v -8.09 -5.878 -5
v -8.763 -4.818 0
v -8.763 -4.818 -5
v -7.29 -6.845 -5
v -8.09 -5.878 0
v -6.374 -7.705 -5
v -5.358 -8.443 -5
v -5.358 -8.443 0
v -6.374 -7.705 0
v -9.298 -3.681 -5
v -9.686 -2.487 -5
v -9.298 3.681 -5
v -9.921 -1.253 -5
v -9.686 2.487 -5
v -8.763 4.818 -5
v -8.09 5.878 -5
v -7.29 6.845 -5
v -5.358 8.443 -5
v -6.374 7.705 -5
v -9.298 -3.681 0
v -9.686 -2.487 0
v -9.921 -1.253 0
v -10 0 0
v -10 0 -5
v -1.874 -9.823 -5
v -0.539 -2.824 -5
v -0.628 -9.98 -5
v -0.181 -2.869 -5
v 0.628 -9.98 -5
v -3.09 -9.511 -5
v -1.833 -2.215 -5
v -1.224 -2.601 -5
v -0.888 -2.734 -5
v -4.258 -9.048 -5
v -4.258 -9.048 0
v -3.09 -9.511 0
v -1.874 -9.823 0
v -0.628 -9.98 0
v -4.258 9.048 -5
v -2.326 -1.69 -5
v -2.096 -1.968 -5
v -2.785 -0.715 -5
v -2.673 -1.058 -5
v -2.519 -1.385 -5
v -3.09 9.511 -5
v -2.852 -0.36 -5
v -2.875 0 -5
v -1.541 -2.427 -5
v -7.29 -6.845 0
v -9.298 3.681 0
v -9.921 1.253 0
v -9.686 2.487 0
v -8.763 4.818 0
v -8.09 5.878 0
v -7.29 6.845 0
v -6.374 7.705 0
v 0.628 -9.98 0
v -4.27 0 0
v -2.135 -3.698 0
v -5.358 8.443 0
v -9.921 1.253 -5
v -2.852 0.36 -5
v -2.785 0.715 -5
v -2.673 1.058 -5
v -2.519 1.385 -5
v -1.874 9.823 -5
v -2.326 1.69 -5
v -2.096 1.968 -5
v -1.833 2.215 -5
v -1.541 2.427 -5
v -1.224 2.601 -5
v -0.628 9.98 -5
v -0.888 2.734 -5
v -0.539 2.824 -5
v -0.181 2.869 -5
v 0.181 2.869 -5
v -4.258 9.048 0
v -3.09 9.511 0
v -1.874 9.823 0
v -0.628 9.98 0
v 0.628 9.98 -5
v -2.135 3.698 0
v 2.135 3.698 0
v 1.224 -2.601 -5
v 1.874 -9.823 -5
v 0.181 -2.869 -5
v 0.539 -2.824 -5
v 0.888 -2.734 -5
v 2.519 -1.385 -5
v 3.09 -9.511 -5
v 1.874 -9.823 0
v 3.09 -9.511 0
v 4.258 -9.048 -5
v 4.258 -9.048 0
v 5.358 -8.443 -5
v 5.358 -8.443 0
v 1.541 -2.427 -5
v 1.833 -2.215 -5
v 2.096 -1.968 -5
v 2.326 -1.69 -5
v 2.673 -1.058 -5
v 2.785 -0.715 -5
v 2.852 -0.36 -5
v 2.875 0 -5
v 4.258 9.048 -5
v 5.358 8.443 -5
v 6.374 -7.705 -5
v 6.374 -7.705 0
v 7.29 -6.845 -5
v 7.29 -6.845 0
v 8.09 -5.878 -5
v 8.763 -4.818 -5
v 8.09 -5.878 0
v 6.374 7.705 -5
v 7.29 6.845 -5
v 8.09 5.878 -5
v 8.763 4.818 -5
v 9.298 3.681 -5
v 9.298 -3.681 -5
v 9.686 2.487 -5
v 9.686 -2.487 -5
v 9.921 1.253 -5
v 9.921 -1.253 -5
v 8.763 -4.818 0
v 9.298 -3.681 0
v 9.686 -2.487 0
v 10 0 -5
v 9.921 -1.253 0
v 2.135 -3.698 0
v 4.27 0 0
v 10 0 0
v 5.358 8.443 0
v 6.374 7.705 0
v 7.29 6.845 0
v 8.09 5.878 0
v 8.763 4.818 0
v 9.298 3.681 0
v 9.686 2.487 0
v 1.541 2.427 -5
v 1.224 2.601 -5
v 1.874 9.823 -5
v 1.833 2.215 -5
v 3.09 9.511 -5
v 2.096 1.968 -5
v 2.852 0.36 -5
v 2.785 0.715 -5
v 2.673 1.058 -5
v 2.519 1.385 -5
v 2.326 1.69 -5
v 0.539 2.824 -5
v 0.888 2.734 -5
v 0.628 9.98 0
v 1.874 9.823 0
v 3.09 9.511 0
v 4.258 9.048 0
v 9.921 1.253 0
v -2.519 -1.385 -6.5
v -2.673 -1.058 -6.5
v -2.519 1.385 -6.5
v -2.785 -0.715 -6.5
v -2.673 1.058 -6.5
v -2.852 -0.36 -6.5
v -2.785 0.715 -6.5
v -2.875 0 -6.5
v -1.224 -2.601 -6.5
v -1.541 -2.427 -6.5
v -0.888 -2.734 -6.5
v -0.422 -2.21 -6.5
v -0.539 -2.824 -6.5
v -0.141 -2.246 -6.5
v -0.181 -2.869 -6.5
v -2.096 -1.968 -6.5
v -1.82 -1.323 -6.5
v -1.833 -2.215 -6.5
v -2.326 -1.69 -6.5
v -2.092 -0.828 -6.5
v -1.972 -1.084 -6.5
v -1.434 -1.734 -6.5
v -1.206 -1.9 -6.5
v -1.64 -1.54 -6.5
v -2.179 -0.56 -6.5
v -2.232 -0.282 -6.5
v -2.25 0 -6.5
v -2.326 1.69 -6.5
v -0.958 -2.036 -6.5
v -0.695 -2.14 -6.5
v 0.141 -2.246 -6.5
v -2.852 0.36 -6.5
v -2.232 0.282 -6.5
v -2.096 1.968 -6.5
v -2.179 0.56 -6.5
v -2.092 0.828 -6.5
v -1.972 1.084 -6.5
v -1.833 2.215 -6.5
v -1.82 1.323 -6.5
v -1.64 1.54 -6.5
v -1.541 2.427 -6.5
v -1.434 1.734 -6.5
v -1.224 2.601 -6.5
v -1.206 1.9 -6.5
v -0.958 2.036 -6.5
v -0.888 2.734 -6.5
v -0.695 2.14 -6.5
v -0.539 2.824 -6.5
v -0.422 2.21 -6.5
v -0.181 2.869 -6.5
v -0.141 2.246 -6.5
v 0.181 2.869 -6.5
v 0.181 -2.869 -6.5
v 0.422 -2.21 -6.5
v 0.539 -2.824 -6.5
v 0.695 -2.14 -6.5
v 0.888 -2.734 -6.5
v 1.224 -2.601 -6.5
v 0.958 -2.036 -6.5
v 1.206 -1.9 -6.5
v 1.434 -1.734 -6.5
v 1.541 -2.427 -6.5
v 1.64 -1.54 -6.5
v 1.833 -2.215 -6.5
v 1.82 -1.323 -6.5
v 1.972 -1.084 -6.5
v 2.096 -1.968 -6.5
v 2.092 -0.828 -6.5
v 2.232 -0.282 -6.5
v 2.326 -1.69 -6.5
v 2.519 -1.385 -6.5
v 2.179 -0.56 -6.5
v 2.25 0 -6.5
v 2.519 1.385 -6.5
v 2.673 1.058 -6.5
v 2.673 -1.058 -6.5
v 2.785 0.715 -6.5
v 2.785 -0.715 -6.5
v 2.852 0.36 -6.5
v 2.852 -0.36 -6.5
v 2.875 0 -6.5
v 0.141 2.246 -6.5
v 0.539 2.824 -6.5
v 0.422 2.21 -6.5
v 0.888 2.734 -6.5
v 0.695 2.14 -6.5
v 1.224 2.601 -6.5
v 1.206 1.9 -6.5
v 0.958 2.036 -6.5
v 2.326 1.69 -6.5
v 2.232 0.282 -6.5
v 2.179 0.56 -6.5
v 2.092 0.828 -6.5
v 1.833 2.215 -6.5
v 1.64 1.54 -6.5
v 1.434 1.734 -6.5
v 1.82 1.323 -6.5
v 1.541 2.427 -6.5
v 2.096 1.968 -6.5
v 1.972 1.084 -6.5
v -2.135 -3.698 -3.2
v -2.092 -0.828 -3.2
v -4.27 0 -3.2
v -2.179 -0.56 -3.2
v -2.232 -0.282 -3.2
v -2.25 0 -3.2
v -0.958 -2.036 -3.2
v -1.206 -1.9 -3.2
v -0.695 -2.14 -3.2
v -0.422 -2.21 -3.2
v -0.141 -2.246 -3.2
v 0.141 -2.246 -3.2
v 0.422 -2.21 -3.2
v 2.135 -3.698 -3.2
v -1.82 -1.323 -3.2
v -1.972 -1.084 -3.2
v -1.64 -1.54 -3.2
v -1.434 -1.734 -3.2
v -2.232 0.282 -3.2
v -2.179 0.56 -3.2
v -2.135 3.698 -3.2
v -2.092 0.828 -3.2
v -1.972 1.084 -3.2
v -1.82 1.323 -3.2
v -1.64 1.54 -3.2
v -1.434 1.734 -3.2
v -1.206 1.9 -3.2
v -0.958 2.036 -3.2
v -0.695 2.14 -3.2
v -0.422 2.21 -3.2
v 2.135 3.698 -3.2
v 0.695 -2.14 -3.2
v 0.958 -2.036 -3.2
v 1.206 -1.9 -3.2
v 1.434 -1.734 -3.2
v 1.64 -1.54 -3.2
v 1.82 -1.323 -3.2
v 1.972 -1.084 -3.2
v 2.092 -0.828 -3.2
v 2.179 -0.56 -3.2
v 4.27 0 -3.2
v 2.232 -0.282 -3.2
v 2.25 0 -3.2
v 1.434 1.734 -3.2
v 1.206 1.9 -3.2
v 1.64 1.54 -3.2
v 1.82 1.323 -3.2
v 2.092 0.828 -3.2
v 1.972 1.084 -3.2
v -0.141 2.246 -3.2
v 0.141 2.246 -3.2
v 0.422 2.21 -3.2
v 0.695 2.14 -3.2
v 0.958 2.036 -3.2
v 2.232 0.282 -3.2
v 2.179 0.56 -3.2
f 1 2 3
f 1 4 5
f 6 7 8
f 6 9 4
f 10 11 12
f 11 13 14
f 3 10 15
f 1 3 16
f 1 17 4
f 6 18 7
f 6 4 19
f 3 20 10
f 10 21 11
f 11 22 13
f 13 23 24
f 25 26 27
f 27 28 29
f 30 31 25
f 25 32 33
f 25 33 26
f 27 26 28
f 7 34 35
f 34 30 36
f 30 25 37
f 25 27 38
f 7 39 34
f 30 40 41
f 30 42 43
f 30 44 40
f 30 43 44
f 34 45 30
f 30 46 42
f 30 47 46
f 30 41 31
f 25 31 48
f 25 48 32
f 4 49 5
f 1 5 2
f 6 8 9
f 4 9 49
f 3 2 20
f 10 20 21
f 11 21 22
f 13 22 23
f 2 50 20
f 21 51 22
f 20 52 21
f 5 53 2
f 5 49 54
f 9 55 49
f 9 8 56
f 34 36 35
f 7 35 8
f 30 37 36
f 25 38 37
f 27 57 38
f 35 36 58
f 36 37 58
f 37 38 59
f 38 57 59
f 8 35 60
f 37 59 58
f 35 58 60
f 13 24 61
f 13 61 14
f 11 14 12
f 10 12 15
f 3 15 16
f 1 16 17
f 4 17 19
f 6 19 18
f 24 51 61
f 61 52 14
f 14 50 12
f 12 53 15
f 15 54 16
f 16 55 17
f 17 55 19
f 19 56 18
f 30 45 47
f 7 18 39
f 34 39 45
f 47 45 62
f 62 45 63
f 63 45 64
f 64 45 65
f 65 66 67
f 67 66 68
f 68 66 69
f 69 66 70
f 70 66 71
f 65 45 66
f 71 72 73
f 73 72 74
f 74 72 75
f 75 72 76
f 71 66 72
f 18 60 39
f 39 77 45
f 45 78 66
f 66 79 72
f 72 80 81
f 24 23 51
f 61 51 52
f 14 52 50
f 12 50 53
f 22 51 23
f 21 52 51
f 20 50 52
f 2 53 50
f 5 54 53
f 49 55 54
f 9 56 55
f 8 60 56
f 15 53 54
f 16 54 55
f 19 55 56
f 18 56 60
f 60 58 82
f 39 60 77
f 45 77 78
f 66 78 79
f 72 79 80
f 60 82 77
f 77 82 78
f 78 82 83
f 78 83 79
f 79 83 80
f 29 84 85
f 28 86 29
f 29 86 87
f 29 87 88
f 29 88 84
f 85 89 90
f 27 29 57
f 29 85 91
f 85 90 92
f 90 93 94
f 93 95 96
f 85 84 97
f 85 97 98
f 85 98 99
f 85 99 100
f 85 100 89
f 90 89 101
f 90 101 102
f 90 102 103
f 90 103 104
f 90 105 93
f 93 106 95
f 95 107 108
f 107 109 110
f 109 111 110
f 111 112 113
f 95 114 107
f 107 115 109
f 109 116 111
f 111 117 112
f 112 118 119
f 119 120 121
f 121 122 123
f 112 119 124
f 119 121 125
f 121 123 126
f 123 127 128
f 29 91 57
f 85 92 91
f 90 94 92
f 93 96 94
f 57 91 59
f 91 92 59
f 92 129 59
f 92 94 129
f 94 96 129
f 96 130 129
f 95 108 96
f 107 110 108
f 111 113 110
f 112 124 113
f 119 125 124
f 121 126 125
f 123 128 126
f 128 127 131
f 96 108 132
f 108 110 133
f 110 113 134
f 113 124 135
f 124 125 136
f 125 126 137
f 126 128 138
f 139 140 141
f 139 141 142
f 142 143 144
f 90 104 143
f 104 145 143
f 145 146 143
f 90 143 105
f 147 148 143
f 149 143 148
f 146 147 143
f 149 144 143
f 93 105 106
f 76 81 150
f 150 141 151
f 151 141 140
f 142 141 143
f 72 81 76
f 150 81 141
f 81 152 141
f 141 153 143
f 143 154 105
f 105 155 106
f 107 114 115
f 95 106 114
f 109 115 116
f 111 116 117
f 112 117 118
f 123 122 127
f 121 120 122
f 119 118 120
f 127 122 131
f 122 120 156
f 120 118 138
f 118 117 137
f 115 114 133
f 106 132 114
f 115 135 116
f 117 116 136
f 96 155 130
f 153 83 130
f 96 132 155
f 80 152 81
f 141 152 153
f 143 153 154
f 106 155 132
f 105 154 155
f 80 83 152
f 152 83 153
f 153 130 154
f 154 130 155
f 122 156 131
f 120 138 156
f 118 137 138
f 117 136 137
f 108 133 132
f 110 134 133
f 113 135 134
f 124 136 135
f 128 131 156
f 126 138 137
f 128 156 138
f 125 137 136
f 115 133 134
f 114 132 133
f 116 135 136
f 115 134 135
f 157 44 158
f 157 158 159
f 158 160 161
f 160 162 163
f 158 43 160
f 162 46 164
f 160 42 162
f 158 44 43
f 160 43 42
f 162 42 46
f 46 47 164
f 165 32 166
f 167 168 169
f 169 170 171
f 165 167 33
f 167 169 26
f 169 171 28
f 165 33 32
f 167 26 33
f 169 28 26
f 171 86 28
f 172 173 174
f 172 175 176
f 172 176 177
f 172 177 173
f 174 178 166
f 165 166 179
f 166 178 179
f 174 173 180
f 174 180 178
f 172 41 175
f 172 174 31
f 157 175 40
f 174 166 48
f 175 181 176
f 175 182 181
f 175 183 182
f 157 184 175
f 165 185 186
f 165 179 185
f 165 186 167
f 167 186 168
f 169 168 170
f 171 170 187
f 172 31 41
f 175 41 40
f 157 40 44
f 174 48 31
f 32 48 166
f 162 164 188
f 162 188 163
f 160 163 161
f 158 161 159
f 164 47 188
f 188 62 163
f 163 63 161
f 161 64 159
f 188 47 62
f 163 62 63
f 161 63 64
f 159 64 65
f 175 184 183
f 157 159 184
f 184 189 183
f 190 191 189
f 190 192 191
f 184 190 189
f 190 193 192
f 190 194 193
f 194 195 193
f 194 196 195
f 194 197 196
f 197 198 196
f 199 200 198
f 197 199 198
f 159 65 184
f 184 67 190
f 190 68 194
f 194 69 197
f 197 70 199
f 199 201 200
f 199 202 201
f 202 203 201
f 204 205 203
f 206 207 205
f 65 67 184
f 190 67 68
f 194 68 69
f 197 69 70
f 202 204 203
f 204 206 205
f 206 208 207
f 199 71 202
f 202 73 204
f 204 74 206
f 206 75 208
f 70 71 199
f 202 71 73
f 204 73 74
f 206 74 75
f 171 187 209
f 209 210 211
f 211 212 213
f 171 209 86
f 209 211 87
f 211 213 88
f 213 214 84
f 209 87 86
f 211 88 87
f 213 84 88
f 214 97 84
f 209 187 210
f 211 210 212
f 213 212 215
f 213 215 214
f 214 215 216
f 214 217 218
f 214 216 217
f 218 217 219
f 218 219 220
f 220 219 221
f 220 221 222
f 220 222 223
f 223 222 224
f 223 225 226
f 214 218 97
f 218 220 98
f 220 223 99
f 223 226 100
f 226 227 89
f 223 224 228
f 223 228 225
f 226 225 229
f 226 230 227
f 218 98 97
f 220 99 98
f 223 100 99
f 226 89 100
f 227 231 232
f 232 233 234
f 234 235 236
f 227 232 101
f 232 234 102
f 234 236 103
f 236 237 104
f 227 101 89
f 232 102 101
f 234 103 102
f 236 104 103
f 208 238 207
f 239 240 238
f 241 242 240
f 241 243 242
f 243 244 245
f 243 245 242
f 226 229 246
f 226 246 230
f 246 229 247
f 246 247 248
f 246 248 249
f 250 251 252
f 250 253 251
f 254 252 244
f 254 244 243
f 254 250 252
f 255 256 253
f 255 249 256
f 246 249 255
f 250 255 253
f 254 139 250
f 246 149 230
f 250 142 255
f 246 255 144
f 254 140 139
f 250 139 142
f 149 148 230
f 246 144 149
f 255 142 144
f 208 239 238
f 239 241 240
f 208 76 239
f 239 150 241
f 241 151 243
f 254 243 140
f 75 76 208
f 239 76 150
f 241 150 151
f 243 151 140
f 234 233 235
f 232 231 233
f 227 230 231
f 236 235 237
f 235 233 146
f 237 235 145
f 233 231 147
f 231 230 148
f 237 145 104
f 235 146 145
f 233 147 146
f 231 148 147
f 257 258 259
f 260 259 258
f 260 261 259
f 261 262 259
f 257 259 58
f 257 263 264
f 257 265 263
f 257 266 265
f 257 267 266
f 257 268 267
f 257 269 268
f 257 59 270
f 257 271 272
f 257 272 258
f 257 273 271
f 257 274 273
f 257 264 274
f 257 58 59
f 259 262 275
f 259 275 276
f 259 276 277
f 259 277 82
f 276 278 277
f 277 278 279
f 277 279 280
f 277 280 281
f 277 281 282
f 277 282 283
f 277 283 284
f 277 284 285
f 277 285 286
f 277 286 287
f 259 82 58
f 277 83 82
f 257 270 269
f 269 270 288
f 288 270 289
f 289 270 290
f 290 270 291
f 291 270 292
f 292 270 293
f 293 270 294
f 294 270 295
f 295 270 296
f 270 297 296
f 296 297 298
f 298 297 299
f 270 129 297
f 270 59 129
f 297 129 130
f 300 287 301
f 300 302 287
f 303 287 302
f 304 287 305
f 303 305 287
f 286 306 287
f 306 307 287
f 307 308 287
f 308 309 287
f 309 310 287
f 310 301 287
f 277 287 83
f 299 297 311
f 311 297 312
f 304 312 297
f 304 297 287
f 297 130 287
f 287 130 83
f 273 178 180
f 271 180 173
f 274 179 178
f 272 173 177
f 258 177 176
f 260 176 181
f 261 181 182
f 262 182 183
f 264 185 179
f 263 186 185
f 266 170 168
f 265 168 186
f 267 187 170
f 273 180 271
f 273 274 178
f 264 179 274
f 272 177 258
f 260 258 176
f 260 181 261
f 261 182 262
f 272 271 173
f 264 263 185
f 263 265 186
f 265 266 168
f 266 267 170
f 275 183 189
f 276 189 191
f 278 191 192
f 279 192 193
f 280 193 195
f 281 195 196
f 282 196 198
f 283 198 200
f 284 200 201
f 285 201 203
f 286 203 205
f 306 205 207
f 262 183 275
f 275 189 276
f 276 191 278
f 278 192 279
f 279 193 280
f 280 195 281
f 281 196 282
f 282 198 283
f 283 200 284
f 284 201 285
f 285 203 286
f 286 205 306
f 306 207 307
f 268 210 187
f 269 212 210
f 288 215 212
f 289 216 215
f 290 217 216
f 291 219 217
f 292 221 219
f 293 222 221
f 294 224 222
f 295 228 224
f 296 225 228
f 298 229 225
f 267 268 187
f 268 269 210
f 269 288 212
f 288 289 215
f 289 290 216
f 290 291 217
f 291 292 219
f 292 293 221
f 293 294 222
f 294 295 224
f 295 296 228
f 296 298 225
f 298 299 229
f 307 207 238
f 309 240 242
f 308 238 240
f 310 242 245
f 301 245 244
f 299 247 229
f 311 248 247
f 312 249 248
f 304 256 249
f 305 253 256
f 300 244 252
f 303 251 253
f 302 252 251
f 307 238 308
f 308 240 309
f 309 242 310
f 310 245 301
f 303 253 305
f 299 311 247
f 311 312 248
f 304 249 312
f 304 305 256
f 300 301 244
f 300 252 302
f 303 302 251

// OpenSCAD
$fn = 50;

difference() {
	union() {
		translate(v = [0, 0, -5.0]) {
			cylinder(h = 5.0, r = 10.0);
		}
		#translate(v = [0, 0, -6.5]) {
			cylinder(h = 6.5, r = 2.875);
		}
	}
	union() {
		translate(v = [0, 0, 0]) {
			rotate(a = [0, 0, 0]) {
				difference() {
					union() {
						translate(v = [0, 0, -3.2]) {
							linear_extrude(height = 3.2) {
								polygon(points = [[4.2698, 0.0], [2.1349000000000005, 3.697755269078796], [-2.134899999999999, 3.6977552690787965], [-4.2698, 5.228996902999369e-16], [-2.134900000000002, -3.6977552690787956], [2.1348999999999974, -3.697755269078798]]);
							}
						}
					}
					union();
				}
			}
		}
		#translate(v = [0, 0, -100.0]) {
			cylinder(h = 200, r = 2.25);
		}
	}
}
